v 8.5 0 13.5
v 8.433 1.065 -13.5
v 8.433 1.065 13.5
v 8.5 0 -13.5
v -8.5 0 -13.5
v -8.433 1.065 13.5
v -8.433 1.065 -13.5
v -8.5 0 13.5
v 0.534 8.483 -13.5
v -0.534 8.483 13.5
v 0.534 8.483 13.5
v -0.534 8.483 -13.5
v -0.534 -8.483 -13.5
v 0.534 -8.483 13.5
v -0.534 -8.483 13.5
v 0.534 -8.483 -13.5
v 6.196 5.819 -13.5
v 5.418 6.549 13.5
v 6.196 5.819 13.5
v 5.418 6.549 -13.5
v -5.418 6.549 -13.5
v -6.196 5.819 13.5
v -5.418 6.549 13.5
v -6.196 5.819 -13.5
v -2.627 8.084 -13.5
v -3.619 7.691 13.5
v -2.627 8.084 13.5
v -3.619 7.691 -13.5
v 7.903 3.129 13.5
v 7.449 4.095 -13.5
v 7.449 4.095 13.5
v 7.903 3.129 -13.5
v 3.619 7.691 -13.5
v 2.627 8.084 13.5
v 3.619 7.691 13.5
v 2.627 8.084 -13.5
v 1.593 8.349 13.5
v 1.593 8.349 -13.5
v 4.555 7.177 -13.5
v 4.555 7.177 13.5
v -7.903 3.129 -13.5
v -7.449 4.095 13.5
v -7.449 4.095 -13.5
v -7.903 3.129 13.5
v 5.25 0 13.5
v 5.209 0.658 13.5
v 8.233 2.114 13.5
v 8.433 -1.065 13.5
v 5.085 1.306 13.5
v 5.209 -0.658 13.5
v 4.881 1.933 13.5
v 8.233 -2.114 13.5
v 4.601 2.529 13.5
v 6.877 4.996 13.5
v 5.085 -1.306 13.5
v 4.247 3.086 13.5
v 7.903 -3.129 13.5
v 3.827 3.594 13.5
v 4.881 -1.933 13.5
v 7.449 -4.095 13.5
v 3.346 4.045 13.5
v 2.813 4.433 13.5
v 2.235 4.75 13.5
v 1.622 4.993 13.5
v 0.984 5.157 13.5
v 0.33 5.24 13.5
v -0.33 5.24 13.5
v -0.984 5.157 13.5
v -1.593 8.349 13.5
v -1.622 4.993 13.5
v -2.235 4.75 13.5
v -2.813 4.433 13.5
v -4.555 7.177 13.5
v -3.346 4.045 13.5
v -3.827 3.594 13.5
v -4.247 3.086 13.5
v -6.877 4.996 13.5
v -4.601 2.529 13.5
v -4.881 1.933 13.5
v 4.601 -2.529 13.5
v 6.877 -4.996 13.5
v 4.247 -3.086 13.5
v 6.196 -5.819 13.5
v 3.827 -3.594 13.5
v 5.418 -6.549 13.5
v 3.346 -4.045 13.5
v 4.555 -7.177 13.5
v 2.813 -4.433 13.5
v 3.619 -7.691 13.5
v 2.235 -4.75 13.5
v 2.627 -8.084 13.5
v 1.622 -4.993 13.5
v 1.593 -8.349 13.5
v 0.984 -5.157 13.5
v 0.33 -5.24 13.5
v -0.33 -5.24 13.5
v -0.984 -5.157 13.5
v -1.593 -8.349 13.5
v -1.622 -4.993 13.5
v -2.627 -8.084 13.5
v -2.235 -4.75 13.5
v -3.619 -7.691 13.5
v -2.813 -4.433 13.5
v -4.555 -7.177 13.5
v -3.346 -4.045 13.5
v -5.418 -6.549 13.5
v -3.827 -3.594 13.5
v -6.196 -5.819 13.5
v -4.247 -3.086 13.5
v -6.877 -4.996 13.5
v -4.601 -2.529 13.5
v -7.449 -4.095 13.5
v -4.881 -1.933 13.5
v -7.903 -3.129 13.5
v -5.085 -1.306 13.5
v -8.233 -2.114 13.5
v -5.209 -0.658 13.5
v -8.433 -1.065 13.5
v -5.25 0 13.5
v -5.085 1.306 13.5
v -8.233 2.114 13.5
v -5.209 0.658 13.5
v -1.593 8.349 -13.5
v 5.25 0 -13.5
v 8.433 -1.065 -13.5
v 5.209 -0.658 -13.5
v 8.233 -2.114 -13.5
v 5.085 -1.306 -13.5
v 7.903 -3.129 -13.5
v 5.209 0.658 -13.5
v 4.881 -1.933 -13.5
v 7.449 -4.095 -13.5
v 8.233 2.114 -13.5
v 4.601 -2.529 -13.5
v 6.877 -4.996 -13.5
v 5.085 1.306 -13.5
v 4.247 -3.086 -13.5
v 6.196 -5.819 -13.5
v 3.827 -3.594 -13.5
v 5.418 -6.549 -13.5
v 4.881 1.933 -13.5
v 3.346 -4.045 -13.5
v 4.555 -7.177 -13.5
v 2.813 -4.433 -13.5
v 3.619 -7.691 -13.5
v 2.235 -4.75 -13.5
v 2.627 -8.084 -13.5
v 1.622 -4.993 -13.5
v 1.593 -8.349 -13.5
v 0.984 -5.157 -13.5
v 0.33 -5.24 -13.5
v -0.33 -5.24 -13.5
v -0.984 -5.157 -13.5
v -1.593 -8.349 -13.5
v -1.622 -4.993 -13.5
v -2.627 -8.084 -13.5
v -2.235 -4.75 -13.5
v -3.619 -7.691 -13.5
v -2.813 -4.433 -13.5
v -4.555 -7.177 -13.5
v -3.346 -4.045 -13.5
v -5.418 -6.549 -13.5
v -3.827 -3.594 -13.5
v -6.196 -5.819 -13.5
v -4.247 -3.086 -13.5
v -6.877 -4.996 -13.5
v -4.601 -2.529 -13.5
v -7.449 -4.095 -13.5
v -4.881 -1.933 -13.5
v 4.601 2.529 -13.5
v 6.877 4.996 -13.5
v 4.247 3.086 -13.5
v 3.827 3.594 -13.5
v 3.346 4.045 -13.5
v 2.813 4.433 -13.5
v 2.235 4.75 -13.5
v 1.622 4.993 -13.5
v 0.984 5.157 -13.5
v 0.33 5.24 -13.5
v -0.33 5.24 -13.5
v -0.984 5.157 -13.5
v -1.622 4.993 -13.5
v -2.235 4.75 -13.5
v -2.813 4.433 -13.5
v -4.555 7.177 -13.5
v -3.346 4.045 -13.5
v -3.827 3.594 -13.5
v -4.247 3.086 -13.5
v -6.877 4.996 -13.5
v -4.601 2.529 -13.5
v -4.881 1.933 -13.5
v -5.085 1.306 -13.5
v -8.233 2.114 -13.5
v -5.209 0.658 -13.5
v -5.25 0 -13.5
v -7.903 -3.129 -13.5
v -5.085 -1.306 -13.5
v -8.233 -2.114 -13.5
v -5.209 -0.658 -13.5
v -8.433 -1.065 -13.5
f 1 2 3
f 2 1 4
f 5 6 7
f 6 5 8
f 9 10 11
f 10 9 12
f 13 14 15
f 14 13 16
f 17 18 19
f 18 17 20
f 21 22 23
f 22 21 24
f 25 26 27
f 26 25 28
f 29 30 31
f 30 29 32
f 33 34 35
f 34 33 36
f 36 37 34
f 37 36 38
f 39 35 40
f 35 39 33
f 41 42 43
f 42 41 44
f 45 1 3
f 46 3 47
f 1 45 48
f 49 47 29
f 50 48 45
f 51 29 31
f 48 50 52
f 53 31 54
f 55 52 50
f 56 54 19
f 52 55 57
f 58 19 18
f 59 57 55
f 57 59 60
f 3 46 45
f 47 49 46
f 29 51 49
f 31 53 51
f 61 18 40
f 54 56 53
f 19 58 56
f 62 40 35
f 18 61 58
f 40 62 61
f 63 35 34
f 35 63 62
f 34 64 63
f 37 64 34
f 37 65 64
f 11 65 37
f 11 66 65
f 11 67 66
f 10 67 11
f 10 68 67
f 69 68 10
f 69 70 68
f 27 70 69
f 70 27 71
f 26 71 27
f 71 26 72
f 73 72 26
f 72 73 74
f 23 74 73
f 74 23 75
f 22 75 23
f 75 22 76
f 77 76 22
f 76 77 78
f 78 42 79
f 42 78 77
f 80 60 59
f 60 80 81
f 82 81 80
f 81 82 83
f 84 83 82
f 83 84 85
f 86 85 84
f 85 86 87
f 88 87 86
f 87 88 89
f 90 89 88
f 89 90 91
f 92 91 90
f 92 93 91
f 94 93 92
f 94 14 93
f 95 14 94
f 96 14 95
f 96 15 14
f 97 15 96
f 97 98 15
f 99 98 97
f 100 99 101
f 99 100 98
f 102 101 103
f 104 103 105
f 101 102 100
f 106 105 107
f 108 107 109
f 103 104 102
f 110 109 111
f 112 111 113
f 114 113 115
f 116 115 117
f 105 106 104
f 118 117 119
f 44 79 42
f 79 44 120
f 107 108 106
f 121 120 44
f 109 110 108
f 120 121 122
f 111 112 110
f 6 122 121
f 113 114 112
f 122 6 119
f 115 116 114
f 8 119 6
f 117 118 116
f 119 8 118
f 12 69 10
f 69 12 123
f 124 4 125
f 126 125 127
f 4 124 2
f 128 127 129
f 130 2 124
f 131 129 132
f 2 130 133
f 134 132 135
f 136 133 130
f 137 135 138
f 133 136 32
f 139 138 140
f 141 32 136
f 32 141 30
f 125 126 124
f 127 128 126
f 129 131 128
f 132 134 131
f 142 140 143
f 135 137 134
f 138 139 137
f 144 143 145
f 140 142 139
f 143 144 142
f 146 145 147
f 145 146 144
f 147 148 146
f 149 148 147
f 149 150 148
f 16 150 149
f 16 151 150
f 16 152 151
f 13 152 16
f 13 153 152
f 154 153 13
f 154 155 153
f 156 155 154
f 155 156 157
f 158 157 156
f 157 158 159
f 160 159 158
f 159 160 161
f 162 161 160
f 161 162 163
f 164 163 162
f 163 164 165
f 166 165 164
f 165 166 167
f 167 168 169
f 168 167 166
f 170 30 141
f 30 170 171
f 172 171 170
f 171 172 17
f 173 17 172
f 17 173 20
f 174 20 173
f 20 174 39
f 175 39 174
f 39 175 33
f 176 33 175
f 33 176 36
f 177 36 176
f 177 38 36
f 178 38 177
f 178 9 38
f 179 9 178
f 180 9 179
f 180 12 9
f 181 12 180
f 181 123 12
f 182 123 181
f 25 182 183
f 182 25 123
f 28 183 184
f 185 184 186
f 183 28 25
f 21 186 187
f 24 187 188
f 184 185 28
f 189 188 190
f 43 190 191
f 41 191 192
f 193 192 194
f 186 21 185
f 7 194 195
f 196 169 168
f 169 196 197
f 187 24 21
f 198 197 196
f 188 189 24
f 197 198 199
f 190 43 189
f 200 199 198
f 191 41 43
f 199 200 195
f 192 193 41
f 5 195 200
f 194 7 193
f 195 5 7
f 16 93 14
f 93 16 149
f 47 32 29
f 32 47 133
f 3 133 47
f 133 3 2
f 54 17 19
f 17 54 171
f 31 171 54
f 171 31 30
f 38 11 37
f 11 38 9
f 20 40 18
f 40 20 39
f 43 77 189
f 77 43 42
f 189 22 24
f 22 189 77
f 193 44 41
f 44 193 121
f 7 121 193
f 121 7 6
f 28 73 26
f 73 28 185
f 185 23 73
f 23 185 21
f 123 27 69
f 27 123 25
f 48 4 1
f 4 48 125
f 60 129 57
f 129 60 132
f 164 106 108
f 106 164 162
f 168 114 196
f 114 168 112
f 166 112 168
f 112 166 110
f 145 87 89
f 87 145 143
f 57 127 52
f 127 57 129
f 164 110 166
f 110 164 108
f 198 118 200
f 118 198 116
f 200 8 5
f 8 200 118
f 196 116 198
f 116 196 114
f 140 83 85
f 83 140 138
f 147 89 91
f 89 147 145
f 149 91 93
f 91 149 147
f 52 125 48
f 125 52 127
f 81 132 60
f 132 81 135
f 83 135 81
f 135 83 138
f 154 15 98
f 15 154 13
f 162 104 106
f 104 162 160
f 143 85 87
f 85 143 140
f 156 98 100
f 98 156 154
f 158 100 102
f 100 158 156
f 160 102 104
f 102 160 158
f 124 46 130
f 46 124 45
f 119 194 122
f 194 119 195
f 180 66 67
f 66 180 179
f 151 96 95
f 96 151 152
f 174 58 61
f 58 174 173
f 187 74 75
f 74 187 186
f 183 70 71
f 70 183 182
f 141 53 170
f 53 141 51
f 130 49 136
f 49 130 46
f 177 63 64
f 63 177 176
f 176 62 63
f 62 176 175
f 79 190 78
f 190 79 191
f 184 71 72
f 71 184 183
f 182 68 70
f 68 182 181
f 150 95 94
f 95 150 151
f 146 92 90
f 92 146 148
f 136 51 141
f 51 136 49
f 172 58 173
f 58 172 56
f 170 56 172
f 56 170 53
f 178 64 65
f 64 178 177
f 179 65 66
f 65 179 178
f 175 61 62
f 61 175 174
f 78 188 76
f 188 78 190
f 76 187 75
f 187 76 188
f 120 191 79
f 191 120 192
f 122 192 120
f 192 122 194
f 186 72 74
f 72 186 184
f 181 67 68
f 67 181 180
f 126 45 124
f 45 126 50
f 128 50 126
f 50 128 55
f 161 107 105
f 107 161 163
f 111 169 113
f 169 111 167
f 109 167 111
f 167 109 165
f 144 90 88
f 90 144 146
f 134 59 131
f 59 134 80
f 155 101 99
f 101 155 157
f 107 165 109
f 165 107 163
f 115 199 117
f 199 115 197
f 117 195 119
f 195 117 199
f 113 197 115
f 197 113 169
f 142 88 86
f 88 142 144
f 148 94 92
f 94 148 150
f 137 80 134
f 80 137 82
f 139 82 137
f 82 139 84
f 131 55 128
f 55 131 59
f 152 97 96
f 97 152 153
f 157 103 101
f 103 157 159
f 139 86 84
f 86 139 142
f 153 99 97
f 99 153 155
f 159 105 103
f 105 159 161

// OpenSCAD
$fn = 50;


difference() {
	union() {
		translate(v = [0, 0, -13.5000000000]) {
			cylinder(h = 27, r = 8.5000000000);
		}
	}
	union() {
		translate(v = [0, 0, -100.0000000000]) {
			cylinder(h = 200, r = 5.2500000000);
		}
	}
}
